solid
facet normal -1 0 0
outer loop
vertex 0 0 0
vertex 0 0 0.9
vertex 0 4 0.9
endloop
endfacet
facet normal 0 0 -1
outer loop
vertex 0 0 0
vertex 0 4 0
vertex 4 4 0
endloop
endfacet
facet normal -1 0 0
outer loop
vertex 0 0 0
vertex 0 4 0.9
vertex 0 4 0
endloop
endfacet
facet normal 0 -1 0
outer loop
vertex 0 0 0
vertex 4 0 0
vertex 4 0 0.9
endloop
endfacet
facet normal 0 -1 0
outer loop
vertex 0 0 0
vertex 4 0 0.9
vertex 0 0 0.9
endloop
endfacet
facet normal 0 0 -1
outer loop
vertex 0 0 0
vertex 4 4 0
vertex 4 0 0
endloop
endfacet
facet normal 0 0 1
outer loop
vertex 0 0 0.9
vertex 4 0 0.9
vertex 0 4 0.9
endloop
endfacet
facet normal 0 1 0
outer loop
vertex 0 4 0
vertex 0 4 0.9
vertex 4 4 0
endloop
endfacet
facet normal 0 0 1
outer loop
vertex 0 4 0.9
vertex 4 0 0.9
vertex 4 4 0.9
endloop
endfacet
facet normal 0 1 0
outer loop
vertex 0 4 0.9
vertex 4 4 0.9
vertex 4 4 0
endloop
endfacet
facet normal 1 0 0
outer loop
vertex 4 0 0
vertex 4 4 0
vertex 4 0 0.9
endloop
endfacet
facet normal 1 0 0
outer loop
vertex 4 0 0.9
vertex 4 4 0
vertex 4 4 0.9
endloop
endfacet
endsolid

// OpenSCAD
/* Warning, this is a very basic generator with a lot of approximation 
input data : [VQFN, RLB, 4x4x0.9mm, 24, , B, C04-21386B]
generated by com.zoubworld.electronics.cad.model3d.Basic
Date : Sun Feb 15 10:50:49 CET 2026
*/

//body
color("black")
translate([0,0,0])
cube([4.0,4.0,0.9], center=false);
